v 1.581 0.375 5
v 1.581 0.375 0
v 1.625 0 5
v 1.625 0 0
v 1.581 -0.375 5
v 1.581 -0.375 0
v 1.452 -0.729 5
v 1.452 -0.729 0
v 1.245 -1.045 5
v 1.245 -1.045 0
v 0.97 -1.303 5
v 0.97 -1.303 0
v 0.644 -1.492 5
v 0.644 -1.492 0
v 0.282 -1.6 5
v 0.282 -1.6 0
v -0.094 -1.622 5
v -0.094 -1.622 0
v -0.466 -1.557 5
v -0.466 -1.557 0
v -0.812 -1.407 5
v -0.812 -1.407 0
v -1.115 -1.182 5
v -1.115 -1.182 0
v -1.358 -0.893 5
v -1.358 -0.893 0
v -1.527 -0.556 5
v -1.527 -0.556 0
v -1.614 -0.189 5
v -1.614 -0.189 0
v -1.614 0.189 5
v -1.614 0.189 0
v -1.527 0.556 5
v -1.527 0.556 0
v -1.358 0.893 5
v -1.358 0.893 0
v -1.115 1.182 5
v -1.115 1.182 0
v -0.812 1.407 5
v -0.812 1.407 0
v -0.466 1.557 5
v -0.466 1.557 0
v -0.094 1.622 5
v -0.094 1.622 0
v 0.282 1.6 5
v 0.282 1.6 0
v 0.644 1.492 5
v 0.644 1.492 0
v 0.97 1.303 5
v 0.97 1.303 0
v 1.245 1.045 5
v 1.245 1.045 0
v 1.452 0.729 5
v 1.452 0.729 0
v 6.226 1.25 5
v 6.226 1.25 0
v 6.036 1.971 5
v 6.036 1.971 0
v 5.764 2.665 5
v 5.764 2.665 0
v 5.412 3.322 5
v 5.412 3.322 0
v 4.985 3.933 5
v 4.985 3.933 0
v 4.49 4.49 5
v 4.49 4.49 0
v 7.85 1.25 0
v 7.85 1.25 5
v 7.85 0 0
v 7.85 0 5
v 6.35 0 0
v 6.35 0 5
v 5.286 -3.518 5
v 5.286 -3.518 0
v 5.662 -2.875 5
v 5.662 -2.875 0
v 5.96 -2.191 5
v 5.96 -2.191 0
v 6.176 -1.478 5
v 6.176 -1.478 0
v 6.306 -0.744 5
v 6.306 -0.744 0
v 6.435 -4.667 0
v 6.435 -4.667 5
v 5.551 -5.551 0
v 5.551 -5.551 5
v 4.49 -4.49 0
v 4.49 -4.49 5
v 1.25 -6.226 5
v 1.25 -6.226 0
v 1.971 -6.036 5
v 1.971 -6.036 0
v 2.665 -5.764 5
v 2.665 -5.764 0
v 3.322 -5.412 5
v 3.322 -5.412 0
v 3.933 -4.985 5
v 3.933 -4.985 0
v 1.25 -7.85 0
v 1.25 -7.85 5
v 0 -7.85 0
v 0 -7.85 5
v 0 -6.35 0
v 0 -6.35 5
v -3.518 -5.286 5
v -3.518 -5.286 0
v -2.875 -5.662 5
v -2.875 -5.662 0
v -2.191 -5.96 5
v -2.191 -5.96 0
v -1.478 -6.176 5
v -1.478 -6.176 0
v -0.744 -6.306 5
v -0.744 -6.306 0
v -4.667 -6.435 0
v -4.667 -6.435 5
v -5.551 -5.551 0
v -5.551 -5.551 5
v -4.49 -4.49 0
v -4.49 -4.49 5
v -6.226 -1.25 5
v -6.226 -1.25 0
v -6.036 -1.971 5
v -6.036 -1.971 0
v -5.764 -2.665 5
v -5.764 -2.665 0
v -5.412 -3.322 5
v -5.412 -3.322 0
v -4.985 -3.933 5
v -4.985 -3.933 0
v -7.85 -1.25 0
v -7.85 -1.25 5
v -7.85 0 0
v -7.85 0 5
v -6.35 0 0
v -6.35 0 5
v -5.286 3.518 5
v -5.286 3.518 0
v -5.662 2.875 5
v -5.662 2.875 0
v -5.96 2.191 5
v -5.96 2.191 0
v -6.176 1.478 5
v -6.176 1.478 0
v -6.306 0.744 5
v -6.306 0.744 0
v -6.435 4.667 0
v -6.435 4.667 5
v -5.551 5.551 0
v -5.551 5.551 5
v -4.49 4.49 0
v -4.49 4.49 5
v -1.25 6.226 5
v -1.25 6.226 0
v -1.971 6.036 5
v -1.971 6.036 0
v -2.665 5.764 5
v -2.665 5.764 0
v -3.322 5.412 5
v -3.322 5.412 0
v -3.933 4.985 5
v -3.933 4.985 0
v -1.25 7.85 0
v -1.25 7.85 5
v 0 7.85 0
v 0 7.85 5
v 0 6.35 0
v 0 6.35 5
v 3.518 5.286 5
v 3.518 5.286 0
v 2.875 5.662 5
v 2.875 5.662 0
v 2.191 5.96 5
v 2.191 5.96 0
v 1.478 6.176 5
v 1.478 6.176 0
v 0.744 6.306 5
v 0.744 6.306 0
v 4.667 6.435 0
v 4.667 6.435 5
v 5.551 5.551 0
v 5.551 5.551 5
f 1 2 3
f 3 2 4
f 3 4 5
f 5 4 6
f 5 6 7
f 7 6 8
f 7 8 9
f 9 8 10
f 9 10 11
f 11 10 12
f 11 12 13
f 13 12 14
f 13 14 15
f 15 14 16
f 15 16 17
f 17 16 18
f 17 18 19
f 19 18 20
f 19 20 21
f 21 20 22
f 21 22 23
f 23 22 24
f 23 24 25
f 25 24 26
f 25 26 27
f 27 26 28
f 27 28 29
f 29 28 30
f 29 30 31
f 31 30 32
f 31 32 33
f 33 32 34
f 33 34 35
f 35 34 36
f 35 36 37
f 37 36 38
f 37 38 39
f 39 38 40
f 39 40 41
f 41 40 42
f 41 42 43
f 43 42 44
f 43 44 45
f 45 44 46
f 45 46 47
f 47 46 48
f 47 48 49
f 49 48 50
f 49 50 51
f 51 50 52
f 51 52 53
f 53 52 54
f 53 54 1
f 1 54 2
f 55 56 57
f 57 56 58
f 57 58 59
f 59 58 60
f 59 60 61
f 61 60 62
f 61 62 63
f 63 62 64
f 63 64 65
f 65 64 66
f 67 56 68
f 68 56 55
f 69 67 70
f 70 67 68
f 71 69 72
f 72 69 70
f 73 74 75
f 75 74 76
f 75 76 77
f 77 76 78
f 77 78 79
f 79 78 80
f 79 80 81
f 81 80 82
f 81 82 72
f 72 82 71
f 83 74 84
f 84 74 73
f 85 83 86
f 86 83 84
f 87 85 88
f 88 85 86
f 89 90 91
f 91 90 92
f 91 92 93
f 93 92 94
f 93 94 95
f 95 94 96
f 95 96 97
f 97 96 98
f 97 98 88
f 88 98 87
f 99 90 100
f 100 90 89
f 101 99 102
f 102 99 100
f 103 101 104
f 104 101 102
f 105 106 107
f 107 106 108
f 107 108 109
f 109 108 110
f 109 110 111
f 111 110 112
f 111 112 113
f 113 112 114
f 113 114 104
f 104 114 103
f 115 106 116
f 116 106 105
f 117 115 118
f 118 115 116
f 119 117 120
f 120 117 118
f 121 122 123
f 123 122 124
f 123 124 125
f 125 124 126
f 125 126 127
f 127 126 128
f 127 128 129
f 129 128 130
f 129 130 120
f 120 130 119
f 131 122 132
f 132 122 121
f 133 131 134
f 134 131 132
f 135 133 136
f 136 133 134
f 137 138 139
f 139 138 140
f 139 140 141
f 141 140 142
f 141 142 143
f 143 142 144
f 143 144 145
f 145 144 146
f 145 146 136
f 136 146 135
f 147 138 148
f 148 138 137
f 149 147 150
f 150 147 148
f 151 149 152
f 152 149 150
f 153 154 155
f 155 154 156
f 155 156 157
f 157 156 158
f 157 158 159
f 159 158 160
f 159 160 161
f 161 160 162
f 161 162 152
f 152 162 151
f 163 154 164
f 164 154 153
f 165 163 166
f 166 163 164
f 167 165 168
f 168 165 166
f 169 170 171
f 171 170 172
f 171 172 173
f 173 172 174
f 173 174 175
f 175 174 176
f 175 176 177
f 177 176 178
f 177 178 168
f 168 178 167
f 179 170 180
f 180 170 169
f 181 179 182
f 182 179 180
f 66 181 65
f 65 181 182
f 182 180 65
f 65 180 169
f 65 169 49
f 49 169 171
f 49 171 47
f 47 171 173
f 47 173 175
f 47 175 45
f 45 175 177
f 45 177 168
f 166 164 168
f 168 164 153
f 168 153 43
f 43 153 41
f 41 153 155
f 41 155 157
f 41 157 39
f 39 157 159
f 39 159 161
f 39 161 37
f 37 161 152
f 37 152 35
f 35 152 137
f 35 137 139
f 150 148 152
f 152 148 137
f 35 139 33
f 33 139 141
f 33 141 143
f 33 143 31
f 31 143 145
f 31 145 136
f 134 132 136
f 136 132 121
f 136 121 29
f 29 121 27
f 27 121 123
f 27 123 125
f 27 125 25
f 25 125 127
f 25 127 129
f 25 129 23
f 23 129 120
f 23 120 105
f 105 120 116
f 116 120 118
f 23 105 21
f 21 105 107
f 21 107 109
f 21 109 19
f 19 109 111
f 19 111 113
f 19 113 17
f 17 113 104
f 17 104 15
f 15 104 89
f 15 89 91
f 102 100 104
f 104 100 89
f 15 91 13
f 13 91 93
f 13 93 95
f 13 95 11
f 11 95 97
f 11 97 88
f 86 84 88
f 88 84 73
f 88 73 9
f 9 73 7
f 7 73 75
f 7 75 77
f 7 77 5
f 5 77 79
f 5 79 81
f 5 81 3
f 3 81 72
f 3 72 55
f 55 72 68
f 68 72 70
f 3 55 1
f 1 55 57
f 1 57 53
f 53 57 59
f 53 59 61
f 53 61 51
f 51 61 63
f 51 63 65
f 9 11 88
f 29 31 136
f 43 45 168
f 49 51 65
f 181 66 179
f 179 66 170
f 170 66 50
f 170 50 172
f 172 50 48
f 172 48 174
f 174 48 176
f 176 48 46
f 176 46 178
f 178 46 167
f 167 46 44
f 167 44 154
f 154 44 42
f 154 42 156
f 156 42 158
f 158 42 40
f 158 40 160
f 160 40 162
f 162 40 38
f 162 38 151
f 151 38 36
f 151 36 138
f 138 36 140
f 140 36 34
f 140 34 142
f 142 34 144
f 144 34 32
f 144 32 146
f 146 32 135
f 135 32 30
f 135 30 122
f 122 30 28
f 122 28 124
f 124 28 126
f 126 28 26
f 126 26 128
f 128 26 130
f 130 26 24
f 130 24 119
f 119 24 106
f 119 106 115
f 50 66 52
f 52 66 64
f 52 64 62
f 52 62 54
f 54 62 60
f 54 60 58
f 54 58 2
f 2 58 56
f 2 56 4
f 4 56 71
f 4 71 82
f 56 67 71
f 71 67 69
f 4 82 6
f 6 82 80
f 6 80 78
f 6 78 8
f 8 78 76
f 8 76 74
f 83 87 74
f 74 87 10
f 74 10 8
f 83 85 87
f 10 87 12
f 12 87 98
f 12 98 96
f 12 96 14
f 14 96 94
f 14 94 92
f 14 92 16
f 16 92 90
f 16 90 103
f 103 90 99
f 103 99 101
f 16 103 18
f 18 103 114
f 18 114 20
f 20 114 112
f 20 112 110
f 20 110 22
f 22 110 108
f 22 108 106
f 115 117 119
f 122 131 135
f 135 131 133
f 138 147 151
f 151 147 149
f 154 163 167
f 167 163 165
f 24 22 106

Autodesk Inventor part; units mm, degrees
ref_plane "YZ Plane" through (0, 0, 0) normal (1, 0, 0) x (0, 1, 0)
ref_plane "XZ Plane" through (0, 0, 0) normal (0, 1, 0) x (-1, 0, 0)
ref_plane "XY Plane" through (0, 0, 0) normal (0, 0, 1) x (1, 0, 0)
sketch "Sketch1" plane through (0, 0, 0) normal (0, 0, 1) x (1, 0, 0)
  circle A0 centre (0, 0) radius 6.35
  line L0 (0, 6.35) -> (0, 7.85)
  line L1 (0, 7.85) -> (-1.25, 7.85)
  line L2 (-1.25, 7.85) -> (-1.25, 6.2258)
  line L3 (-5.5508, 5.5508) -> (-6.4347, 4.6669)
  line L4 (-6.4347, 4.6669) -> (-5.2862, 3.5184)
  line L5 (-4.4901, 4.4901) -> (-5.5508, 5.5508)
  line L6 (-7.85, 0) -> (-7.85, -1.25)
  line L7 (-7.85, -1.25) -> (-6.2258, -1.25)
  line L8 (-6.35, 0) -> (-7.85, 0)
  line L9 (-5.5508, -5.5508) -> (-4.6669, -6.4347)
  line L10 (-4.6669, -6.4347) -> (-3.5184, -5.2862)
  line L11 (-4.4901, -4.4901) -> (-5.5508, -5.5508)
  line L12 (0, -7.85) -> (1.25, -7.85)
  line L13 (1.25, -7.85) -> (1.25, -6.2258)
  line L14 (0, -6.35) -> (0, -7.85)
  line L15 (5.5508, -5.5508) -> (6.4347, -4.6669)
  line L16 (6.4347, -4.6669) -> (5.2862, -3.5184)
  line L17 (4.4901, -4.4901) -> (5.5508, -5.5508)
  line L18 (7.85, 0) -> (7.85, 1.25)
  line L19 (7.85, 1.25) -> (6.2258, 1.25)
  line L20 (6.35, 0) -> (7.85, 0)
  line L21 (5.5508, 5.5508) -> (4.6669, 6.4347)
  line L22 (4.6669, 6.4347) -> (3.5184, 5.2862)
  line L23 (4.4901, 4.4901) -> (5.5508, 5.5508)
  circle A1 centre (0, 0) radius 1.625
  point P0 (-3.5184, -5.2862)
  point P1 (4.4901, -4.4901)
  point P2 (5.2862, -3.5184)
  point P3 (6.2258, 1.25)
  point P4 (3.5184, 5.2862)
  dimension "d2" = 1.5
  dimension "d6" = 360
  dimension "d10" = 3.25
extrude "Extrusion1" add sketch "Sketch1" along normal blind 5
properties part number "motor gear"
